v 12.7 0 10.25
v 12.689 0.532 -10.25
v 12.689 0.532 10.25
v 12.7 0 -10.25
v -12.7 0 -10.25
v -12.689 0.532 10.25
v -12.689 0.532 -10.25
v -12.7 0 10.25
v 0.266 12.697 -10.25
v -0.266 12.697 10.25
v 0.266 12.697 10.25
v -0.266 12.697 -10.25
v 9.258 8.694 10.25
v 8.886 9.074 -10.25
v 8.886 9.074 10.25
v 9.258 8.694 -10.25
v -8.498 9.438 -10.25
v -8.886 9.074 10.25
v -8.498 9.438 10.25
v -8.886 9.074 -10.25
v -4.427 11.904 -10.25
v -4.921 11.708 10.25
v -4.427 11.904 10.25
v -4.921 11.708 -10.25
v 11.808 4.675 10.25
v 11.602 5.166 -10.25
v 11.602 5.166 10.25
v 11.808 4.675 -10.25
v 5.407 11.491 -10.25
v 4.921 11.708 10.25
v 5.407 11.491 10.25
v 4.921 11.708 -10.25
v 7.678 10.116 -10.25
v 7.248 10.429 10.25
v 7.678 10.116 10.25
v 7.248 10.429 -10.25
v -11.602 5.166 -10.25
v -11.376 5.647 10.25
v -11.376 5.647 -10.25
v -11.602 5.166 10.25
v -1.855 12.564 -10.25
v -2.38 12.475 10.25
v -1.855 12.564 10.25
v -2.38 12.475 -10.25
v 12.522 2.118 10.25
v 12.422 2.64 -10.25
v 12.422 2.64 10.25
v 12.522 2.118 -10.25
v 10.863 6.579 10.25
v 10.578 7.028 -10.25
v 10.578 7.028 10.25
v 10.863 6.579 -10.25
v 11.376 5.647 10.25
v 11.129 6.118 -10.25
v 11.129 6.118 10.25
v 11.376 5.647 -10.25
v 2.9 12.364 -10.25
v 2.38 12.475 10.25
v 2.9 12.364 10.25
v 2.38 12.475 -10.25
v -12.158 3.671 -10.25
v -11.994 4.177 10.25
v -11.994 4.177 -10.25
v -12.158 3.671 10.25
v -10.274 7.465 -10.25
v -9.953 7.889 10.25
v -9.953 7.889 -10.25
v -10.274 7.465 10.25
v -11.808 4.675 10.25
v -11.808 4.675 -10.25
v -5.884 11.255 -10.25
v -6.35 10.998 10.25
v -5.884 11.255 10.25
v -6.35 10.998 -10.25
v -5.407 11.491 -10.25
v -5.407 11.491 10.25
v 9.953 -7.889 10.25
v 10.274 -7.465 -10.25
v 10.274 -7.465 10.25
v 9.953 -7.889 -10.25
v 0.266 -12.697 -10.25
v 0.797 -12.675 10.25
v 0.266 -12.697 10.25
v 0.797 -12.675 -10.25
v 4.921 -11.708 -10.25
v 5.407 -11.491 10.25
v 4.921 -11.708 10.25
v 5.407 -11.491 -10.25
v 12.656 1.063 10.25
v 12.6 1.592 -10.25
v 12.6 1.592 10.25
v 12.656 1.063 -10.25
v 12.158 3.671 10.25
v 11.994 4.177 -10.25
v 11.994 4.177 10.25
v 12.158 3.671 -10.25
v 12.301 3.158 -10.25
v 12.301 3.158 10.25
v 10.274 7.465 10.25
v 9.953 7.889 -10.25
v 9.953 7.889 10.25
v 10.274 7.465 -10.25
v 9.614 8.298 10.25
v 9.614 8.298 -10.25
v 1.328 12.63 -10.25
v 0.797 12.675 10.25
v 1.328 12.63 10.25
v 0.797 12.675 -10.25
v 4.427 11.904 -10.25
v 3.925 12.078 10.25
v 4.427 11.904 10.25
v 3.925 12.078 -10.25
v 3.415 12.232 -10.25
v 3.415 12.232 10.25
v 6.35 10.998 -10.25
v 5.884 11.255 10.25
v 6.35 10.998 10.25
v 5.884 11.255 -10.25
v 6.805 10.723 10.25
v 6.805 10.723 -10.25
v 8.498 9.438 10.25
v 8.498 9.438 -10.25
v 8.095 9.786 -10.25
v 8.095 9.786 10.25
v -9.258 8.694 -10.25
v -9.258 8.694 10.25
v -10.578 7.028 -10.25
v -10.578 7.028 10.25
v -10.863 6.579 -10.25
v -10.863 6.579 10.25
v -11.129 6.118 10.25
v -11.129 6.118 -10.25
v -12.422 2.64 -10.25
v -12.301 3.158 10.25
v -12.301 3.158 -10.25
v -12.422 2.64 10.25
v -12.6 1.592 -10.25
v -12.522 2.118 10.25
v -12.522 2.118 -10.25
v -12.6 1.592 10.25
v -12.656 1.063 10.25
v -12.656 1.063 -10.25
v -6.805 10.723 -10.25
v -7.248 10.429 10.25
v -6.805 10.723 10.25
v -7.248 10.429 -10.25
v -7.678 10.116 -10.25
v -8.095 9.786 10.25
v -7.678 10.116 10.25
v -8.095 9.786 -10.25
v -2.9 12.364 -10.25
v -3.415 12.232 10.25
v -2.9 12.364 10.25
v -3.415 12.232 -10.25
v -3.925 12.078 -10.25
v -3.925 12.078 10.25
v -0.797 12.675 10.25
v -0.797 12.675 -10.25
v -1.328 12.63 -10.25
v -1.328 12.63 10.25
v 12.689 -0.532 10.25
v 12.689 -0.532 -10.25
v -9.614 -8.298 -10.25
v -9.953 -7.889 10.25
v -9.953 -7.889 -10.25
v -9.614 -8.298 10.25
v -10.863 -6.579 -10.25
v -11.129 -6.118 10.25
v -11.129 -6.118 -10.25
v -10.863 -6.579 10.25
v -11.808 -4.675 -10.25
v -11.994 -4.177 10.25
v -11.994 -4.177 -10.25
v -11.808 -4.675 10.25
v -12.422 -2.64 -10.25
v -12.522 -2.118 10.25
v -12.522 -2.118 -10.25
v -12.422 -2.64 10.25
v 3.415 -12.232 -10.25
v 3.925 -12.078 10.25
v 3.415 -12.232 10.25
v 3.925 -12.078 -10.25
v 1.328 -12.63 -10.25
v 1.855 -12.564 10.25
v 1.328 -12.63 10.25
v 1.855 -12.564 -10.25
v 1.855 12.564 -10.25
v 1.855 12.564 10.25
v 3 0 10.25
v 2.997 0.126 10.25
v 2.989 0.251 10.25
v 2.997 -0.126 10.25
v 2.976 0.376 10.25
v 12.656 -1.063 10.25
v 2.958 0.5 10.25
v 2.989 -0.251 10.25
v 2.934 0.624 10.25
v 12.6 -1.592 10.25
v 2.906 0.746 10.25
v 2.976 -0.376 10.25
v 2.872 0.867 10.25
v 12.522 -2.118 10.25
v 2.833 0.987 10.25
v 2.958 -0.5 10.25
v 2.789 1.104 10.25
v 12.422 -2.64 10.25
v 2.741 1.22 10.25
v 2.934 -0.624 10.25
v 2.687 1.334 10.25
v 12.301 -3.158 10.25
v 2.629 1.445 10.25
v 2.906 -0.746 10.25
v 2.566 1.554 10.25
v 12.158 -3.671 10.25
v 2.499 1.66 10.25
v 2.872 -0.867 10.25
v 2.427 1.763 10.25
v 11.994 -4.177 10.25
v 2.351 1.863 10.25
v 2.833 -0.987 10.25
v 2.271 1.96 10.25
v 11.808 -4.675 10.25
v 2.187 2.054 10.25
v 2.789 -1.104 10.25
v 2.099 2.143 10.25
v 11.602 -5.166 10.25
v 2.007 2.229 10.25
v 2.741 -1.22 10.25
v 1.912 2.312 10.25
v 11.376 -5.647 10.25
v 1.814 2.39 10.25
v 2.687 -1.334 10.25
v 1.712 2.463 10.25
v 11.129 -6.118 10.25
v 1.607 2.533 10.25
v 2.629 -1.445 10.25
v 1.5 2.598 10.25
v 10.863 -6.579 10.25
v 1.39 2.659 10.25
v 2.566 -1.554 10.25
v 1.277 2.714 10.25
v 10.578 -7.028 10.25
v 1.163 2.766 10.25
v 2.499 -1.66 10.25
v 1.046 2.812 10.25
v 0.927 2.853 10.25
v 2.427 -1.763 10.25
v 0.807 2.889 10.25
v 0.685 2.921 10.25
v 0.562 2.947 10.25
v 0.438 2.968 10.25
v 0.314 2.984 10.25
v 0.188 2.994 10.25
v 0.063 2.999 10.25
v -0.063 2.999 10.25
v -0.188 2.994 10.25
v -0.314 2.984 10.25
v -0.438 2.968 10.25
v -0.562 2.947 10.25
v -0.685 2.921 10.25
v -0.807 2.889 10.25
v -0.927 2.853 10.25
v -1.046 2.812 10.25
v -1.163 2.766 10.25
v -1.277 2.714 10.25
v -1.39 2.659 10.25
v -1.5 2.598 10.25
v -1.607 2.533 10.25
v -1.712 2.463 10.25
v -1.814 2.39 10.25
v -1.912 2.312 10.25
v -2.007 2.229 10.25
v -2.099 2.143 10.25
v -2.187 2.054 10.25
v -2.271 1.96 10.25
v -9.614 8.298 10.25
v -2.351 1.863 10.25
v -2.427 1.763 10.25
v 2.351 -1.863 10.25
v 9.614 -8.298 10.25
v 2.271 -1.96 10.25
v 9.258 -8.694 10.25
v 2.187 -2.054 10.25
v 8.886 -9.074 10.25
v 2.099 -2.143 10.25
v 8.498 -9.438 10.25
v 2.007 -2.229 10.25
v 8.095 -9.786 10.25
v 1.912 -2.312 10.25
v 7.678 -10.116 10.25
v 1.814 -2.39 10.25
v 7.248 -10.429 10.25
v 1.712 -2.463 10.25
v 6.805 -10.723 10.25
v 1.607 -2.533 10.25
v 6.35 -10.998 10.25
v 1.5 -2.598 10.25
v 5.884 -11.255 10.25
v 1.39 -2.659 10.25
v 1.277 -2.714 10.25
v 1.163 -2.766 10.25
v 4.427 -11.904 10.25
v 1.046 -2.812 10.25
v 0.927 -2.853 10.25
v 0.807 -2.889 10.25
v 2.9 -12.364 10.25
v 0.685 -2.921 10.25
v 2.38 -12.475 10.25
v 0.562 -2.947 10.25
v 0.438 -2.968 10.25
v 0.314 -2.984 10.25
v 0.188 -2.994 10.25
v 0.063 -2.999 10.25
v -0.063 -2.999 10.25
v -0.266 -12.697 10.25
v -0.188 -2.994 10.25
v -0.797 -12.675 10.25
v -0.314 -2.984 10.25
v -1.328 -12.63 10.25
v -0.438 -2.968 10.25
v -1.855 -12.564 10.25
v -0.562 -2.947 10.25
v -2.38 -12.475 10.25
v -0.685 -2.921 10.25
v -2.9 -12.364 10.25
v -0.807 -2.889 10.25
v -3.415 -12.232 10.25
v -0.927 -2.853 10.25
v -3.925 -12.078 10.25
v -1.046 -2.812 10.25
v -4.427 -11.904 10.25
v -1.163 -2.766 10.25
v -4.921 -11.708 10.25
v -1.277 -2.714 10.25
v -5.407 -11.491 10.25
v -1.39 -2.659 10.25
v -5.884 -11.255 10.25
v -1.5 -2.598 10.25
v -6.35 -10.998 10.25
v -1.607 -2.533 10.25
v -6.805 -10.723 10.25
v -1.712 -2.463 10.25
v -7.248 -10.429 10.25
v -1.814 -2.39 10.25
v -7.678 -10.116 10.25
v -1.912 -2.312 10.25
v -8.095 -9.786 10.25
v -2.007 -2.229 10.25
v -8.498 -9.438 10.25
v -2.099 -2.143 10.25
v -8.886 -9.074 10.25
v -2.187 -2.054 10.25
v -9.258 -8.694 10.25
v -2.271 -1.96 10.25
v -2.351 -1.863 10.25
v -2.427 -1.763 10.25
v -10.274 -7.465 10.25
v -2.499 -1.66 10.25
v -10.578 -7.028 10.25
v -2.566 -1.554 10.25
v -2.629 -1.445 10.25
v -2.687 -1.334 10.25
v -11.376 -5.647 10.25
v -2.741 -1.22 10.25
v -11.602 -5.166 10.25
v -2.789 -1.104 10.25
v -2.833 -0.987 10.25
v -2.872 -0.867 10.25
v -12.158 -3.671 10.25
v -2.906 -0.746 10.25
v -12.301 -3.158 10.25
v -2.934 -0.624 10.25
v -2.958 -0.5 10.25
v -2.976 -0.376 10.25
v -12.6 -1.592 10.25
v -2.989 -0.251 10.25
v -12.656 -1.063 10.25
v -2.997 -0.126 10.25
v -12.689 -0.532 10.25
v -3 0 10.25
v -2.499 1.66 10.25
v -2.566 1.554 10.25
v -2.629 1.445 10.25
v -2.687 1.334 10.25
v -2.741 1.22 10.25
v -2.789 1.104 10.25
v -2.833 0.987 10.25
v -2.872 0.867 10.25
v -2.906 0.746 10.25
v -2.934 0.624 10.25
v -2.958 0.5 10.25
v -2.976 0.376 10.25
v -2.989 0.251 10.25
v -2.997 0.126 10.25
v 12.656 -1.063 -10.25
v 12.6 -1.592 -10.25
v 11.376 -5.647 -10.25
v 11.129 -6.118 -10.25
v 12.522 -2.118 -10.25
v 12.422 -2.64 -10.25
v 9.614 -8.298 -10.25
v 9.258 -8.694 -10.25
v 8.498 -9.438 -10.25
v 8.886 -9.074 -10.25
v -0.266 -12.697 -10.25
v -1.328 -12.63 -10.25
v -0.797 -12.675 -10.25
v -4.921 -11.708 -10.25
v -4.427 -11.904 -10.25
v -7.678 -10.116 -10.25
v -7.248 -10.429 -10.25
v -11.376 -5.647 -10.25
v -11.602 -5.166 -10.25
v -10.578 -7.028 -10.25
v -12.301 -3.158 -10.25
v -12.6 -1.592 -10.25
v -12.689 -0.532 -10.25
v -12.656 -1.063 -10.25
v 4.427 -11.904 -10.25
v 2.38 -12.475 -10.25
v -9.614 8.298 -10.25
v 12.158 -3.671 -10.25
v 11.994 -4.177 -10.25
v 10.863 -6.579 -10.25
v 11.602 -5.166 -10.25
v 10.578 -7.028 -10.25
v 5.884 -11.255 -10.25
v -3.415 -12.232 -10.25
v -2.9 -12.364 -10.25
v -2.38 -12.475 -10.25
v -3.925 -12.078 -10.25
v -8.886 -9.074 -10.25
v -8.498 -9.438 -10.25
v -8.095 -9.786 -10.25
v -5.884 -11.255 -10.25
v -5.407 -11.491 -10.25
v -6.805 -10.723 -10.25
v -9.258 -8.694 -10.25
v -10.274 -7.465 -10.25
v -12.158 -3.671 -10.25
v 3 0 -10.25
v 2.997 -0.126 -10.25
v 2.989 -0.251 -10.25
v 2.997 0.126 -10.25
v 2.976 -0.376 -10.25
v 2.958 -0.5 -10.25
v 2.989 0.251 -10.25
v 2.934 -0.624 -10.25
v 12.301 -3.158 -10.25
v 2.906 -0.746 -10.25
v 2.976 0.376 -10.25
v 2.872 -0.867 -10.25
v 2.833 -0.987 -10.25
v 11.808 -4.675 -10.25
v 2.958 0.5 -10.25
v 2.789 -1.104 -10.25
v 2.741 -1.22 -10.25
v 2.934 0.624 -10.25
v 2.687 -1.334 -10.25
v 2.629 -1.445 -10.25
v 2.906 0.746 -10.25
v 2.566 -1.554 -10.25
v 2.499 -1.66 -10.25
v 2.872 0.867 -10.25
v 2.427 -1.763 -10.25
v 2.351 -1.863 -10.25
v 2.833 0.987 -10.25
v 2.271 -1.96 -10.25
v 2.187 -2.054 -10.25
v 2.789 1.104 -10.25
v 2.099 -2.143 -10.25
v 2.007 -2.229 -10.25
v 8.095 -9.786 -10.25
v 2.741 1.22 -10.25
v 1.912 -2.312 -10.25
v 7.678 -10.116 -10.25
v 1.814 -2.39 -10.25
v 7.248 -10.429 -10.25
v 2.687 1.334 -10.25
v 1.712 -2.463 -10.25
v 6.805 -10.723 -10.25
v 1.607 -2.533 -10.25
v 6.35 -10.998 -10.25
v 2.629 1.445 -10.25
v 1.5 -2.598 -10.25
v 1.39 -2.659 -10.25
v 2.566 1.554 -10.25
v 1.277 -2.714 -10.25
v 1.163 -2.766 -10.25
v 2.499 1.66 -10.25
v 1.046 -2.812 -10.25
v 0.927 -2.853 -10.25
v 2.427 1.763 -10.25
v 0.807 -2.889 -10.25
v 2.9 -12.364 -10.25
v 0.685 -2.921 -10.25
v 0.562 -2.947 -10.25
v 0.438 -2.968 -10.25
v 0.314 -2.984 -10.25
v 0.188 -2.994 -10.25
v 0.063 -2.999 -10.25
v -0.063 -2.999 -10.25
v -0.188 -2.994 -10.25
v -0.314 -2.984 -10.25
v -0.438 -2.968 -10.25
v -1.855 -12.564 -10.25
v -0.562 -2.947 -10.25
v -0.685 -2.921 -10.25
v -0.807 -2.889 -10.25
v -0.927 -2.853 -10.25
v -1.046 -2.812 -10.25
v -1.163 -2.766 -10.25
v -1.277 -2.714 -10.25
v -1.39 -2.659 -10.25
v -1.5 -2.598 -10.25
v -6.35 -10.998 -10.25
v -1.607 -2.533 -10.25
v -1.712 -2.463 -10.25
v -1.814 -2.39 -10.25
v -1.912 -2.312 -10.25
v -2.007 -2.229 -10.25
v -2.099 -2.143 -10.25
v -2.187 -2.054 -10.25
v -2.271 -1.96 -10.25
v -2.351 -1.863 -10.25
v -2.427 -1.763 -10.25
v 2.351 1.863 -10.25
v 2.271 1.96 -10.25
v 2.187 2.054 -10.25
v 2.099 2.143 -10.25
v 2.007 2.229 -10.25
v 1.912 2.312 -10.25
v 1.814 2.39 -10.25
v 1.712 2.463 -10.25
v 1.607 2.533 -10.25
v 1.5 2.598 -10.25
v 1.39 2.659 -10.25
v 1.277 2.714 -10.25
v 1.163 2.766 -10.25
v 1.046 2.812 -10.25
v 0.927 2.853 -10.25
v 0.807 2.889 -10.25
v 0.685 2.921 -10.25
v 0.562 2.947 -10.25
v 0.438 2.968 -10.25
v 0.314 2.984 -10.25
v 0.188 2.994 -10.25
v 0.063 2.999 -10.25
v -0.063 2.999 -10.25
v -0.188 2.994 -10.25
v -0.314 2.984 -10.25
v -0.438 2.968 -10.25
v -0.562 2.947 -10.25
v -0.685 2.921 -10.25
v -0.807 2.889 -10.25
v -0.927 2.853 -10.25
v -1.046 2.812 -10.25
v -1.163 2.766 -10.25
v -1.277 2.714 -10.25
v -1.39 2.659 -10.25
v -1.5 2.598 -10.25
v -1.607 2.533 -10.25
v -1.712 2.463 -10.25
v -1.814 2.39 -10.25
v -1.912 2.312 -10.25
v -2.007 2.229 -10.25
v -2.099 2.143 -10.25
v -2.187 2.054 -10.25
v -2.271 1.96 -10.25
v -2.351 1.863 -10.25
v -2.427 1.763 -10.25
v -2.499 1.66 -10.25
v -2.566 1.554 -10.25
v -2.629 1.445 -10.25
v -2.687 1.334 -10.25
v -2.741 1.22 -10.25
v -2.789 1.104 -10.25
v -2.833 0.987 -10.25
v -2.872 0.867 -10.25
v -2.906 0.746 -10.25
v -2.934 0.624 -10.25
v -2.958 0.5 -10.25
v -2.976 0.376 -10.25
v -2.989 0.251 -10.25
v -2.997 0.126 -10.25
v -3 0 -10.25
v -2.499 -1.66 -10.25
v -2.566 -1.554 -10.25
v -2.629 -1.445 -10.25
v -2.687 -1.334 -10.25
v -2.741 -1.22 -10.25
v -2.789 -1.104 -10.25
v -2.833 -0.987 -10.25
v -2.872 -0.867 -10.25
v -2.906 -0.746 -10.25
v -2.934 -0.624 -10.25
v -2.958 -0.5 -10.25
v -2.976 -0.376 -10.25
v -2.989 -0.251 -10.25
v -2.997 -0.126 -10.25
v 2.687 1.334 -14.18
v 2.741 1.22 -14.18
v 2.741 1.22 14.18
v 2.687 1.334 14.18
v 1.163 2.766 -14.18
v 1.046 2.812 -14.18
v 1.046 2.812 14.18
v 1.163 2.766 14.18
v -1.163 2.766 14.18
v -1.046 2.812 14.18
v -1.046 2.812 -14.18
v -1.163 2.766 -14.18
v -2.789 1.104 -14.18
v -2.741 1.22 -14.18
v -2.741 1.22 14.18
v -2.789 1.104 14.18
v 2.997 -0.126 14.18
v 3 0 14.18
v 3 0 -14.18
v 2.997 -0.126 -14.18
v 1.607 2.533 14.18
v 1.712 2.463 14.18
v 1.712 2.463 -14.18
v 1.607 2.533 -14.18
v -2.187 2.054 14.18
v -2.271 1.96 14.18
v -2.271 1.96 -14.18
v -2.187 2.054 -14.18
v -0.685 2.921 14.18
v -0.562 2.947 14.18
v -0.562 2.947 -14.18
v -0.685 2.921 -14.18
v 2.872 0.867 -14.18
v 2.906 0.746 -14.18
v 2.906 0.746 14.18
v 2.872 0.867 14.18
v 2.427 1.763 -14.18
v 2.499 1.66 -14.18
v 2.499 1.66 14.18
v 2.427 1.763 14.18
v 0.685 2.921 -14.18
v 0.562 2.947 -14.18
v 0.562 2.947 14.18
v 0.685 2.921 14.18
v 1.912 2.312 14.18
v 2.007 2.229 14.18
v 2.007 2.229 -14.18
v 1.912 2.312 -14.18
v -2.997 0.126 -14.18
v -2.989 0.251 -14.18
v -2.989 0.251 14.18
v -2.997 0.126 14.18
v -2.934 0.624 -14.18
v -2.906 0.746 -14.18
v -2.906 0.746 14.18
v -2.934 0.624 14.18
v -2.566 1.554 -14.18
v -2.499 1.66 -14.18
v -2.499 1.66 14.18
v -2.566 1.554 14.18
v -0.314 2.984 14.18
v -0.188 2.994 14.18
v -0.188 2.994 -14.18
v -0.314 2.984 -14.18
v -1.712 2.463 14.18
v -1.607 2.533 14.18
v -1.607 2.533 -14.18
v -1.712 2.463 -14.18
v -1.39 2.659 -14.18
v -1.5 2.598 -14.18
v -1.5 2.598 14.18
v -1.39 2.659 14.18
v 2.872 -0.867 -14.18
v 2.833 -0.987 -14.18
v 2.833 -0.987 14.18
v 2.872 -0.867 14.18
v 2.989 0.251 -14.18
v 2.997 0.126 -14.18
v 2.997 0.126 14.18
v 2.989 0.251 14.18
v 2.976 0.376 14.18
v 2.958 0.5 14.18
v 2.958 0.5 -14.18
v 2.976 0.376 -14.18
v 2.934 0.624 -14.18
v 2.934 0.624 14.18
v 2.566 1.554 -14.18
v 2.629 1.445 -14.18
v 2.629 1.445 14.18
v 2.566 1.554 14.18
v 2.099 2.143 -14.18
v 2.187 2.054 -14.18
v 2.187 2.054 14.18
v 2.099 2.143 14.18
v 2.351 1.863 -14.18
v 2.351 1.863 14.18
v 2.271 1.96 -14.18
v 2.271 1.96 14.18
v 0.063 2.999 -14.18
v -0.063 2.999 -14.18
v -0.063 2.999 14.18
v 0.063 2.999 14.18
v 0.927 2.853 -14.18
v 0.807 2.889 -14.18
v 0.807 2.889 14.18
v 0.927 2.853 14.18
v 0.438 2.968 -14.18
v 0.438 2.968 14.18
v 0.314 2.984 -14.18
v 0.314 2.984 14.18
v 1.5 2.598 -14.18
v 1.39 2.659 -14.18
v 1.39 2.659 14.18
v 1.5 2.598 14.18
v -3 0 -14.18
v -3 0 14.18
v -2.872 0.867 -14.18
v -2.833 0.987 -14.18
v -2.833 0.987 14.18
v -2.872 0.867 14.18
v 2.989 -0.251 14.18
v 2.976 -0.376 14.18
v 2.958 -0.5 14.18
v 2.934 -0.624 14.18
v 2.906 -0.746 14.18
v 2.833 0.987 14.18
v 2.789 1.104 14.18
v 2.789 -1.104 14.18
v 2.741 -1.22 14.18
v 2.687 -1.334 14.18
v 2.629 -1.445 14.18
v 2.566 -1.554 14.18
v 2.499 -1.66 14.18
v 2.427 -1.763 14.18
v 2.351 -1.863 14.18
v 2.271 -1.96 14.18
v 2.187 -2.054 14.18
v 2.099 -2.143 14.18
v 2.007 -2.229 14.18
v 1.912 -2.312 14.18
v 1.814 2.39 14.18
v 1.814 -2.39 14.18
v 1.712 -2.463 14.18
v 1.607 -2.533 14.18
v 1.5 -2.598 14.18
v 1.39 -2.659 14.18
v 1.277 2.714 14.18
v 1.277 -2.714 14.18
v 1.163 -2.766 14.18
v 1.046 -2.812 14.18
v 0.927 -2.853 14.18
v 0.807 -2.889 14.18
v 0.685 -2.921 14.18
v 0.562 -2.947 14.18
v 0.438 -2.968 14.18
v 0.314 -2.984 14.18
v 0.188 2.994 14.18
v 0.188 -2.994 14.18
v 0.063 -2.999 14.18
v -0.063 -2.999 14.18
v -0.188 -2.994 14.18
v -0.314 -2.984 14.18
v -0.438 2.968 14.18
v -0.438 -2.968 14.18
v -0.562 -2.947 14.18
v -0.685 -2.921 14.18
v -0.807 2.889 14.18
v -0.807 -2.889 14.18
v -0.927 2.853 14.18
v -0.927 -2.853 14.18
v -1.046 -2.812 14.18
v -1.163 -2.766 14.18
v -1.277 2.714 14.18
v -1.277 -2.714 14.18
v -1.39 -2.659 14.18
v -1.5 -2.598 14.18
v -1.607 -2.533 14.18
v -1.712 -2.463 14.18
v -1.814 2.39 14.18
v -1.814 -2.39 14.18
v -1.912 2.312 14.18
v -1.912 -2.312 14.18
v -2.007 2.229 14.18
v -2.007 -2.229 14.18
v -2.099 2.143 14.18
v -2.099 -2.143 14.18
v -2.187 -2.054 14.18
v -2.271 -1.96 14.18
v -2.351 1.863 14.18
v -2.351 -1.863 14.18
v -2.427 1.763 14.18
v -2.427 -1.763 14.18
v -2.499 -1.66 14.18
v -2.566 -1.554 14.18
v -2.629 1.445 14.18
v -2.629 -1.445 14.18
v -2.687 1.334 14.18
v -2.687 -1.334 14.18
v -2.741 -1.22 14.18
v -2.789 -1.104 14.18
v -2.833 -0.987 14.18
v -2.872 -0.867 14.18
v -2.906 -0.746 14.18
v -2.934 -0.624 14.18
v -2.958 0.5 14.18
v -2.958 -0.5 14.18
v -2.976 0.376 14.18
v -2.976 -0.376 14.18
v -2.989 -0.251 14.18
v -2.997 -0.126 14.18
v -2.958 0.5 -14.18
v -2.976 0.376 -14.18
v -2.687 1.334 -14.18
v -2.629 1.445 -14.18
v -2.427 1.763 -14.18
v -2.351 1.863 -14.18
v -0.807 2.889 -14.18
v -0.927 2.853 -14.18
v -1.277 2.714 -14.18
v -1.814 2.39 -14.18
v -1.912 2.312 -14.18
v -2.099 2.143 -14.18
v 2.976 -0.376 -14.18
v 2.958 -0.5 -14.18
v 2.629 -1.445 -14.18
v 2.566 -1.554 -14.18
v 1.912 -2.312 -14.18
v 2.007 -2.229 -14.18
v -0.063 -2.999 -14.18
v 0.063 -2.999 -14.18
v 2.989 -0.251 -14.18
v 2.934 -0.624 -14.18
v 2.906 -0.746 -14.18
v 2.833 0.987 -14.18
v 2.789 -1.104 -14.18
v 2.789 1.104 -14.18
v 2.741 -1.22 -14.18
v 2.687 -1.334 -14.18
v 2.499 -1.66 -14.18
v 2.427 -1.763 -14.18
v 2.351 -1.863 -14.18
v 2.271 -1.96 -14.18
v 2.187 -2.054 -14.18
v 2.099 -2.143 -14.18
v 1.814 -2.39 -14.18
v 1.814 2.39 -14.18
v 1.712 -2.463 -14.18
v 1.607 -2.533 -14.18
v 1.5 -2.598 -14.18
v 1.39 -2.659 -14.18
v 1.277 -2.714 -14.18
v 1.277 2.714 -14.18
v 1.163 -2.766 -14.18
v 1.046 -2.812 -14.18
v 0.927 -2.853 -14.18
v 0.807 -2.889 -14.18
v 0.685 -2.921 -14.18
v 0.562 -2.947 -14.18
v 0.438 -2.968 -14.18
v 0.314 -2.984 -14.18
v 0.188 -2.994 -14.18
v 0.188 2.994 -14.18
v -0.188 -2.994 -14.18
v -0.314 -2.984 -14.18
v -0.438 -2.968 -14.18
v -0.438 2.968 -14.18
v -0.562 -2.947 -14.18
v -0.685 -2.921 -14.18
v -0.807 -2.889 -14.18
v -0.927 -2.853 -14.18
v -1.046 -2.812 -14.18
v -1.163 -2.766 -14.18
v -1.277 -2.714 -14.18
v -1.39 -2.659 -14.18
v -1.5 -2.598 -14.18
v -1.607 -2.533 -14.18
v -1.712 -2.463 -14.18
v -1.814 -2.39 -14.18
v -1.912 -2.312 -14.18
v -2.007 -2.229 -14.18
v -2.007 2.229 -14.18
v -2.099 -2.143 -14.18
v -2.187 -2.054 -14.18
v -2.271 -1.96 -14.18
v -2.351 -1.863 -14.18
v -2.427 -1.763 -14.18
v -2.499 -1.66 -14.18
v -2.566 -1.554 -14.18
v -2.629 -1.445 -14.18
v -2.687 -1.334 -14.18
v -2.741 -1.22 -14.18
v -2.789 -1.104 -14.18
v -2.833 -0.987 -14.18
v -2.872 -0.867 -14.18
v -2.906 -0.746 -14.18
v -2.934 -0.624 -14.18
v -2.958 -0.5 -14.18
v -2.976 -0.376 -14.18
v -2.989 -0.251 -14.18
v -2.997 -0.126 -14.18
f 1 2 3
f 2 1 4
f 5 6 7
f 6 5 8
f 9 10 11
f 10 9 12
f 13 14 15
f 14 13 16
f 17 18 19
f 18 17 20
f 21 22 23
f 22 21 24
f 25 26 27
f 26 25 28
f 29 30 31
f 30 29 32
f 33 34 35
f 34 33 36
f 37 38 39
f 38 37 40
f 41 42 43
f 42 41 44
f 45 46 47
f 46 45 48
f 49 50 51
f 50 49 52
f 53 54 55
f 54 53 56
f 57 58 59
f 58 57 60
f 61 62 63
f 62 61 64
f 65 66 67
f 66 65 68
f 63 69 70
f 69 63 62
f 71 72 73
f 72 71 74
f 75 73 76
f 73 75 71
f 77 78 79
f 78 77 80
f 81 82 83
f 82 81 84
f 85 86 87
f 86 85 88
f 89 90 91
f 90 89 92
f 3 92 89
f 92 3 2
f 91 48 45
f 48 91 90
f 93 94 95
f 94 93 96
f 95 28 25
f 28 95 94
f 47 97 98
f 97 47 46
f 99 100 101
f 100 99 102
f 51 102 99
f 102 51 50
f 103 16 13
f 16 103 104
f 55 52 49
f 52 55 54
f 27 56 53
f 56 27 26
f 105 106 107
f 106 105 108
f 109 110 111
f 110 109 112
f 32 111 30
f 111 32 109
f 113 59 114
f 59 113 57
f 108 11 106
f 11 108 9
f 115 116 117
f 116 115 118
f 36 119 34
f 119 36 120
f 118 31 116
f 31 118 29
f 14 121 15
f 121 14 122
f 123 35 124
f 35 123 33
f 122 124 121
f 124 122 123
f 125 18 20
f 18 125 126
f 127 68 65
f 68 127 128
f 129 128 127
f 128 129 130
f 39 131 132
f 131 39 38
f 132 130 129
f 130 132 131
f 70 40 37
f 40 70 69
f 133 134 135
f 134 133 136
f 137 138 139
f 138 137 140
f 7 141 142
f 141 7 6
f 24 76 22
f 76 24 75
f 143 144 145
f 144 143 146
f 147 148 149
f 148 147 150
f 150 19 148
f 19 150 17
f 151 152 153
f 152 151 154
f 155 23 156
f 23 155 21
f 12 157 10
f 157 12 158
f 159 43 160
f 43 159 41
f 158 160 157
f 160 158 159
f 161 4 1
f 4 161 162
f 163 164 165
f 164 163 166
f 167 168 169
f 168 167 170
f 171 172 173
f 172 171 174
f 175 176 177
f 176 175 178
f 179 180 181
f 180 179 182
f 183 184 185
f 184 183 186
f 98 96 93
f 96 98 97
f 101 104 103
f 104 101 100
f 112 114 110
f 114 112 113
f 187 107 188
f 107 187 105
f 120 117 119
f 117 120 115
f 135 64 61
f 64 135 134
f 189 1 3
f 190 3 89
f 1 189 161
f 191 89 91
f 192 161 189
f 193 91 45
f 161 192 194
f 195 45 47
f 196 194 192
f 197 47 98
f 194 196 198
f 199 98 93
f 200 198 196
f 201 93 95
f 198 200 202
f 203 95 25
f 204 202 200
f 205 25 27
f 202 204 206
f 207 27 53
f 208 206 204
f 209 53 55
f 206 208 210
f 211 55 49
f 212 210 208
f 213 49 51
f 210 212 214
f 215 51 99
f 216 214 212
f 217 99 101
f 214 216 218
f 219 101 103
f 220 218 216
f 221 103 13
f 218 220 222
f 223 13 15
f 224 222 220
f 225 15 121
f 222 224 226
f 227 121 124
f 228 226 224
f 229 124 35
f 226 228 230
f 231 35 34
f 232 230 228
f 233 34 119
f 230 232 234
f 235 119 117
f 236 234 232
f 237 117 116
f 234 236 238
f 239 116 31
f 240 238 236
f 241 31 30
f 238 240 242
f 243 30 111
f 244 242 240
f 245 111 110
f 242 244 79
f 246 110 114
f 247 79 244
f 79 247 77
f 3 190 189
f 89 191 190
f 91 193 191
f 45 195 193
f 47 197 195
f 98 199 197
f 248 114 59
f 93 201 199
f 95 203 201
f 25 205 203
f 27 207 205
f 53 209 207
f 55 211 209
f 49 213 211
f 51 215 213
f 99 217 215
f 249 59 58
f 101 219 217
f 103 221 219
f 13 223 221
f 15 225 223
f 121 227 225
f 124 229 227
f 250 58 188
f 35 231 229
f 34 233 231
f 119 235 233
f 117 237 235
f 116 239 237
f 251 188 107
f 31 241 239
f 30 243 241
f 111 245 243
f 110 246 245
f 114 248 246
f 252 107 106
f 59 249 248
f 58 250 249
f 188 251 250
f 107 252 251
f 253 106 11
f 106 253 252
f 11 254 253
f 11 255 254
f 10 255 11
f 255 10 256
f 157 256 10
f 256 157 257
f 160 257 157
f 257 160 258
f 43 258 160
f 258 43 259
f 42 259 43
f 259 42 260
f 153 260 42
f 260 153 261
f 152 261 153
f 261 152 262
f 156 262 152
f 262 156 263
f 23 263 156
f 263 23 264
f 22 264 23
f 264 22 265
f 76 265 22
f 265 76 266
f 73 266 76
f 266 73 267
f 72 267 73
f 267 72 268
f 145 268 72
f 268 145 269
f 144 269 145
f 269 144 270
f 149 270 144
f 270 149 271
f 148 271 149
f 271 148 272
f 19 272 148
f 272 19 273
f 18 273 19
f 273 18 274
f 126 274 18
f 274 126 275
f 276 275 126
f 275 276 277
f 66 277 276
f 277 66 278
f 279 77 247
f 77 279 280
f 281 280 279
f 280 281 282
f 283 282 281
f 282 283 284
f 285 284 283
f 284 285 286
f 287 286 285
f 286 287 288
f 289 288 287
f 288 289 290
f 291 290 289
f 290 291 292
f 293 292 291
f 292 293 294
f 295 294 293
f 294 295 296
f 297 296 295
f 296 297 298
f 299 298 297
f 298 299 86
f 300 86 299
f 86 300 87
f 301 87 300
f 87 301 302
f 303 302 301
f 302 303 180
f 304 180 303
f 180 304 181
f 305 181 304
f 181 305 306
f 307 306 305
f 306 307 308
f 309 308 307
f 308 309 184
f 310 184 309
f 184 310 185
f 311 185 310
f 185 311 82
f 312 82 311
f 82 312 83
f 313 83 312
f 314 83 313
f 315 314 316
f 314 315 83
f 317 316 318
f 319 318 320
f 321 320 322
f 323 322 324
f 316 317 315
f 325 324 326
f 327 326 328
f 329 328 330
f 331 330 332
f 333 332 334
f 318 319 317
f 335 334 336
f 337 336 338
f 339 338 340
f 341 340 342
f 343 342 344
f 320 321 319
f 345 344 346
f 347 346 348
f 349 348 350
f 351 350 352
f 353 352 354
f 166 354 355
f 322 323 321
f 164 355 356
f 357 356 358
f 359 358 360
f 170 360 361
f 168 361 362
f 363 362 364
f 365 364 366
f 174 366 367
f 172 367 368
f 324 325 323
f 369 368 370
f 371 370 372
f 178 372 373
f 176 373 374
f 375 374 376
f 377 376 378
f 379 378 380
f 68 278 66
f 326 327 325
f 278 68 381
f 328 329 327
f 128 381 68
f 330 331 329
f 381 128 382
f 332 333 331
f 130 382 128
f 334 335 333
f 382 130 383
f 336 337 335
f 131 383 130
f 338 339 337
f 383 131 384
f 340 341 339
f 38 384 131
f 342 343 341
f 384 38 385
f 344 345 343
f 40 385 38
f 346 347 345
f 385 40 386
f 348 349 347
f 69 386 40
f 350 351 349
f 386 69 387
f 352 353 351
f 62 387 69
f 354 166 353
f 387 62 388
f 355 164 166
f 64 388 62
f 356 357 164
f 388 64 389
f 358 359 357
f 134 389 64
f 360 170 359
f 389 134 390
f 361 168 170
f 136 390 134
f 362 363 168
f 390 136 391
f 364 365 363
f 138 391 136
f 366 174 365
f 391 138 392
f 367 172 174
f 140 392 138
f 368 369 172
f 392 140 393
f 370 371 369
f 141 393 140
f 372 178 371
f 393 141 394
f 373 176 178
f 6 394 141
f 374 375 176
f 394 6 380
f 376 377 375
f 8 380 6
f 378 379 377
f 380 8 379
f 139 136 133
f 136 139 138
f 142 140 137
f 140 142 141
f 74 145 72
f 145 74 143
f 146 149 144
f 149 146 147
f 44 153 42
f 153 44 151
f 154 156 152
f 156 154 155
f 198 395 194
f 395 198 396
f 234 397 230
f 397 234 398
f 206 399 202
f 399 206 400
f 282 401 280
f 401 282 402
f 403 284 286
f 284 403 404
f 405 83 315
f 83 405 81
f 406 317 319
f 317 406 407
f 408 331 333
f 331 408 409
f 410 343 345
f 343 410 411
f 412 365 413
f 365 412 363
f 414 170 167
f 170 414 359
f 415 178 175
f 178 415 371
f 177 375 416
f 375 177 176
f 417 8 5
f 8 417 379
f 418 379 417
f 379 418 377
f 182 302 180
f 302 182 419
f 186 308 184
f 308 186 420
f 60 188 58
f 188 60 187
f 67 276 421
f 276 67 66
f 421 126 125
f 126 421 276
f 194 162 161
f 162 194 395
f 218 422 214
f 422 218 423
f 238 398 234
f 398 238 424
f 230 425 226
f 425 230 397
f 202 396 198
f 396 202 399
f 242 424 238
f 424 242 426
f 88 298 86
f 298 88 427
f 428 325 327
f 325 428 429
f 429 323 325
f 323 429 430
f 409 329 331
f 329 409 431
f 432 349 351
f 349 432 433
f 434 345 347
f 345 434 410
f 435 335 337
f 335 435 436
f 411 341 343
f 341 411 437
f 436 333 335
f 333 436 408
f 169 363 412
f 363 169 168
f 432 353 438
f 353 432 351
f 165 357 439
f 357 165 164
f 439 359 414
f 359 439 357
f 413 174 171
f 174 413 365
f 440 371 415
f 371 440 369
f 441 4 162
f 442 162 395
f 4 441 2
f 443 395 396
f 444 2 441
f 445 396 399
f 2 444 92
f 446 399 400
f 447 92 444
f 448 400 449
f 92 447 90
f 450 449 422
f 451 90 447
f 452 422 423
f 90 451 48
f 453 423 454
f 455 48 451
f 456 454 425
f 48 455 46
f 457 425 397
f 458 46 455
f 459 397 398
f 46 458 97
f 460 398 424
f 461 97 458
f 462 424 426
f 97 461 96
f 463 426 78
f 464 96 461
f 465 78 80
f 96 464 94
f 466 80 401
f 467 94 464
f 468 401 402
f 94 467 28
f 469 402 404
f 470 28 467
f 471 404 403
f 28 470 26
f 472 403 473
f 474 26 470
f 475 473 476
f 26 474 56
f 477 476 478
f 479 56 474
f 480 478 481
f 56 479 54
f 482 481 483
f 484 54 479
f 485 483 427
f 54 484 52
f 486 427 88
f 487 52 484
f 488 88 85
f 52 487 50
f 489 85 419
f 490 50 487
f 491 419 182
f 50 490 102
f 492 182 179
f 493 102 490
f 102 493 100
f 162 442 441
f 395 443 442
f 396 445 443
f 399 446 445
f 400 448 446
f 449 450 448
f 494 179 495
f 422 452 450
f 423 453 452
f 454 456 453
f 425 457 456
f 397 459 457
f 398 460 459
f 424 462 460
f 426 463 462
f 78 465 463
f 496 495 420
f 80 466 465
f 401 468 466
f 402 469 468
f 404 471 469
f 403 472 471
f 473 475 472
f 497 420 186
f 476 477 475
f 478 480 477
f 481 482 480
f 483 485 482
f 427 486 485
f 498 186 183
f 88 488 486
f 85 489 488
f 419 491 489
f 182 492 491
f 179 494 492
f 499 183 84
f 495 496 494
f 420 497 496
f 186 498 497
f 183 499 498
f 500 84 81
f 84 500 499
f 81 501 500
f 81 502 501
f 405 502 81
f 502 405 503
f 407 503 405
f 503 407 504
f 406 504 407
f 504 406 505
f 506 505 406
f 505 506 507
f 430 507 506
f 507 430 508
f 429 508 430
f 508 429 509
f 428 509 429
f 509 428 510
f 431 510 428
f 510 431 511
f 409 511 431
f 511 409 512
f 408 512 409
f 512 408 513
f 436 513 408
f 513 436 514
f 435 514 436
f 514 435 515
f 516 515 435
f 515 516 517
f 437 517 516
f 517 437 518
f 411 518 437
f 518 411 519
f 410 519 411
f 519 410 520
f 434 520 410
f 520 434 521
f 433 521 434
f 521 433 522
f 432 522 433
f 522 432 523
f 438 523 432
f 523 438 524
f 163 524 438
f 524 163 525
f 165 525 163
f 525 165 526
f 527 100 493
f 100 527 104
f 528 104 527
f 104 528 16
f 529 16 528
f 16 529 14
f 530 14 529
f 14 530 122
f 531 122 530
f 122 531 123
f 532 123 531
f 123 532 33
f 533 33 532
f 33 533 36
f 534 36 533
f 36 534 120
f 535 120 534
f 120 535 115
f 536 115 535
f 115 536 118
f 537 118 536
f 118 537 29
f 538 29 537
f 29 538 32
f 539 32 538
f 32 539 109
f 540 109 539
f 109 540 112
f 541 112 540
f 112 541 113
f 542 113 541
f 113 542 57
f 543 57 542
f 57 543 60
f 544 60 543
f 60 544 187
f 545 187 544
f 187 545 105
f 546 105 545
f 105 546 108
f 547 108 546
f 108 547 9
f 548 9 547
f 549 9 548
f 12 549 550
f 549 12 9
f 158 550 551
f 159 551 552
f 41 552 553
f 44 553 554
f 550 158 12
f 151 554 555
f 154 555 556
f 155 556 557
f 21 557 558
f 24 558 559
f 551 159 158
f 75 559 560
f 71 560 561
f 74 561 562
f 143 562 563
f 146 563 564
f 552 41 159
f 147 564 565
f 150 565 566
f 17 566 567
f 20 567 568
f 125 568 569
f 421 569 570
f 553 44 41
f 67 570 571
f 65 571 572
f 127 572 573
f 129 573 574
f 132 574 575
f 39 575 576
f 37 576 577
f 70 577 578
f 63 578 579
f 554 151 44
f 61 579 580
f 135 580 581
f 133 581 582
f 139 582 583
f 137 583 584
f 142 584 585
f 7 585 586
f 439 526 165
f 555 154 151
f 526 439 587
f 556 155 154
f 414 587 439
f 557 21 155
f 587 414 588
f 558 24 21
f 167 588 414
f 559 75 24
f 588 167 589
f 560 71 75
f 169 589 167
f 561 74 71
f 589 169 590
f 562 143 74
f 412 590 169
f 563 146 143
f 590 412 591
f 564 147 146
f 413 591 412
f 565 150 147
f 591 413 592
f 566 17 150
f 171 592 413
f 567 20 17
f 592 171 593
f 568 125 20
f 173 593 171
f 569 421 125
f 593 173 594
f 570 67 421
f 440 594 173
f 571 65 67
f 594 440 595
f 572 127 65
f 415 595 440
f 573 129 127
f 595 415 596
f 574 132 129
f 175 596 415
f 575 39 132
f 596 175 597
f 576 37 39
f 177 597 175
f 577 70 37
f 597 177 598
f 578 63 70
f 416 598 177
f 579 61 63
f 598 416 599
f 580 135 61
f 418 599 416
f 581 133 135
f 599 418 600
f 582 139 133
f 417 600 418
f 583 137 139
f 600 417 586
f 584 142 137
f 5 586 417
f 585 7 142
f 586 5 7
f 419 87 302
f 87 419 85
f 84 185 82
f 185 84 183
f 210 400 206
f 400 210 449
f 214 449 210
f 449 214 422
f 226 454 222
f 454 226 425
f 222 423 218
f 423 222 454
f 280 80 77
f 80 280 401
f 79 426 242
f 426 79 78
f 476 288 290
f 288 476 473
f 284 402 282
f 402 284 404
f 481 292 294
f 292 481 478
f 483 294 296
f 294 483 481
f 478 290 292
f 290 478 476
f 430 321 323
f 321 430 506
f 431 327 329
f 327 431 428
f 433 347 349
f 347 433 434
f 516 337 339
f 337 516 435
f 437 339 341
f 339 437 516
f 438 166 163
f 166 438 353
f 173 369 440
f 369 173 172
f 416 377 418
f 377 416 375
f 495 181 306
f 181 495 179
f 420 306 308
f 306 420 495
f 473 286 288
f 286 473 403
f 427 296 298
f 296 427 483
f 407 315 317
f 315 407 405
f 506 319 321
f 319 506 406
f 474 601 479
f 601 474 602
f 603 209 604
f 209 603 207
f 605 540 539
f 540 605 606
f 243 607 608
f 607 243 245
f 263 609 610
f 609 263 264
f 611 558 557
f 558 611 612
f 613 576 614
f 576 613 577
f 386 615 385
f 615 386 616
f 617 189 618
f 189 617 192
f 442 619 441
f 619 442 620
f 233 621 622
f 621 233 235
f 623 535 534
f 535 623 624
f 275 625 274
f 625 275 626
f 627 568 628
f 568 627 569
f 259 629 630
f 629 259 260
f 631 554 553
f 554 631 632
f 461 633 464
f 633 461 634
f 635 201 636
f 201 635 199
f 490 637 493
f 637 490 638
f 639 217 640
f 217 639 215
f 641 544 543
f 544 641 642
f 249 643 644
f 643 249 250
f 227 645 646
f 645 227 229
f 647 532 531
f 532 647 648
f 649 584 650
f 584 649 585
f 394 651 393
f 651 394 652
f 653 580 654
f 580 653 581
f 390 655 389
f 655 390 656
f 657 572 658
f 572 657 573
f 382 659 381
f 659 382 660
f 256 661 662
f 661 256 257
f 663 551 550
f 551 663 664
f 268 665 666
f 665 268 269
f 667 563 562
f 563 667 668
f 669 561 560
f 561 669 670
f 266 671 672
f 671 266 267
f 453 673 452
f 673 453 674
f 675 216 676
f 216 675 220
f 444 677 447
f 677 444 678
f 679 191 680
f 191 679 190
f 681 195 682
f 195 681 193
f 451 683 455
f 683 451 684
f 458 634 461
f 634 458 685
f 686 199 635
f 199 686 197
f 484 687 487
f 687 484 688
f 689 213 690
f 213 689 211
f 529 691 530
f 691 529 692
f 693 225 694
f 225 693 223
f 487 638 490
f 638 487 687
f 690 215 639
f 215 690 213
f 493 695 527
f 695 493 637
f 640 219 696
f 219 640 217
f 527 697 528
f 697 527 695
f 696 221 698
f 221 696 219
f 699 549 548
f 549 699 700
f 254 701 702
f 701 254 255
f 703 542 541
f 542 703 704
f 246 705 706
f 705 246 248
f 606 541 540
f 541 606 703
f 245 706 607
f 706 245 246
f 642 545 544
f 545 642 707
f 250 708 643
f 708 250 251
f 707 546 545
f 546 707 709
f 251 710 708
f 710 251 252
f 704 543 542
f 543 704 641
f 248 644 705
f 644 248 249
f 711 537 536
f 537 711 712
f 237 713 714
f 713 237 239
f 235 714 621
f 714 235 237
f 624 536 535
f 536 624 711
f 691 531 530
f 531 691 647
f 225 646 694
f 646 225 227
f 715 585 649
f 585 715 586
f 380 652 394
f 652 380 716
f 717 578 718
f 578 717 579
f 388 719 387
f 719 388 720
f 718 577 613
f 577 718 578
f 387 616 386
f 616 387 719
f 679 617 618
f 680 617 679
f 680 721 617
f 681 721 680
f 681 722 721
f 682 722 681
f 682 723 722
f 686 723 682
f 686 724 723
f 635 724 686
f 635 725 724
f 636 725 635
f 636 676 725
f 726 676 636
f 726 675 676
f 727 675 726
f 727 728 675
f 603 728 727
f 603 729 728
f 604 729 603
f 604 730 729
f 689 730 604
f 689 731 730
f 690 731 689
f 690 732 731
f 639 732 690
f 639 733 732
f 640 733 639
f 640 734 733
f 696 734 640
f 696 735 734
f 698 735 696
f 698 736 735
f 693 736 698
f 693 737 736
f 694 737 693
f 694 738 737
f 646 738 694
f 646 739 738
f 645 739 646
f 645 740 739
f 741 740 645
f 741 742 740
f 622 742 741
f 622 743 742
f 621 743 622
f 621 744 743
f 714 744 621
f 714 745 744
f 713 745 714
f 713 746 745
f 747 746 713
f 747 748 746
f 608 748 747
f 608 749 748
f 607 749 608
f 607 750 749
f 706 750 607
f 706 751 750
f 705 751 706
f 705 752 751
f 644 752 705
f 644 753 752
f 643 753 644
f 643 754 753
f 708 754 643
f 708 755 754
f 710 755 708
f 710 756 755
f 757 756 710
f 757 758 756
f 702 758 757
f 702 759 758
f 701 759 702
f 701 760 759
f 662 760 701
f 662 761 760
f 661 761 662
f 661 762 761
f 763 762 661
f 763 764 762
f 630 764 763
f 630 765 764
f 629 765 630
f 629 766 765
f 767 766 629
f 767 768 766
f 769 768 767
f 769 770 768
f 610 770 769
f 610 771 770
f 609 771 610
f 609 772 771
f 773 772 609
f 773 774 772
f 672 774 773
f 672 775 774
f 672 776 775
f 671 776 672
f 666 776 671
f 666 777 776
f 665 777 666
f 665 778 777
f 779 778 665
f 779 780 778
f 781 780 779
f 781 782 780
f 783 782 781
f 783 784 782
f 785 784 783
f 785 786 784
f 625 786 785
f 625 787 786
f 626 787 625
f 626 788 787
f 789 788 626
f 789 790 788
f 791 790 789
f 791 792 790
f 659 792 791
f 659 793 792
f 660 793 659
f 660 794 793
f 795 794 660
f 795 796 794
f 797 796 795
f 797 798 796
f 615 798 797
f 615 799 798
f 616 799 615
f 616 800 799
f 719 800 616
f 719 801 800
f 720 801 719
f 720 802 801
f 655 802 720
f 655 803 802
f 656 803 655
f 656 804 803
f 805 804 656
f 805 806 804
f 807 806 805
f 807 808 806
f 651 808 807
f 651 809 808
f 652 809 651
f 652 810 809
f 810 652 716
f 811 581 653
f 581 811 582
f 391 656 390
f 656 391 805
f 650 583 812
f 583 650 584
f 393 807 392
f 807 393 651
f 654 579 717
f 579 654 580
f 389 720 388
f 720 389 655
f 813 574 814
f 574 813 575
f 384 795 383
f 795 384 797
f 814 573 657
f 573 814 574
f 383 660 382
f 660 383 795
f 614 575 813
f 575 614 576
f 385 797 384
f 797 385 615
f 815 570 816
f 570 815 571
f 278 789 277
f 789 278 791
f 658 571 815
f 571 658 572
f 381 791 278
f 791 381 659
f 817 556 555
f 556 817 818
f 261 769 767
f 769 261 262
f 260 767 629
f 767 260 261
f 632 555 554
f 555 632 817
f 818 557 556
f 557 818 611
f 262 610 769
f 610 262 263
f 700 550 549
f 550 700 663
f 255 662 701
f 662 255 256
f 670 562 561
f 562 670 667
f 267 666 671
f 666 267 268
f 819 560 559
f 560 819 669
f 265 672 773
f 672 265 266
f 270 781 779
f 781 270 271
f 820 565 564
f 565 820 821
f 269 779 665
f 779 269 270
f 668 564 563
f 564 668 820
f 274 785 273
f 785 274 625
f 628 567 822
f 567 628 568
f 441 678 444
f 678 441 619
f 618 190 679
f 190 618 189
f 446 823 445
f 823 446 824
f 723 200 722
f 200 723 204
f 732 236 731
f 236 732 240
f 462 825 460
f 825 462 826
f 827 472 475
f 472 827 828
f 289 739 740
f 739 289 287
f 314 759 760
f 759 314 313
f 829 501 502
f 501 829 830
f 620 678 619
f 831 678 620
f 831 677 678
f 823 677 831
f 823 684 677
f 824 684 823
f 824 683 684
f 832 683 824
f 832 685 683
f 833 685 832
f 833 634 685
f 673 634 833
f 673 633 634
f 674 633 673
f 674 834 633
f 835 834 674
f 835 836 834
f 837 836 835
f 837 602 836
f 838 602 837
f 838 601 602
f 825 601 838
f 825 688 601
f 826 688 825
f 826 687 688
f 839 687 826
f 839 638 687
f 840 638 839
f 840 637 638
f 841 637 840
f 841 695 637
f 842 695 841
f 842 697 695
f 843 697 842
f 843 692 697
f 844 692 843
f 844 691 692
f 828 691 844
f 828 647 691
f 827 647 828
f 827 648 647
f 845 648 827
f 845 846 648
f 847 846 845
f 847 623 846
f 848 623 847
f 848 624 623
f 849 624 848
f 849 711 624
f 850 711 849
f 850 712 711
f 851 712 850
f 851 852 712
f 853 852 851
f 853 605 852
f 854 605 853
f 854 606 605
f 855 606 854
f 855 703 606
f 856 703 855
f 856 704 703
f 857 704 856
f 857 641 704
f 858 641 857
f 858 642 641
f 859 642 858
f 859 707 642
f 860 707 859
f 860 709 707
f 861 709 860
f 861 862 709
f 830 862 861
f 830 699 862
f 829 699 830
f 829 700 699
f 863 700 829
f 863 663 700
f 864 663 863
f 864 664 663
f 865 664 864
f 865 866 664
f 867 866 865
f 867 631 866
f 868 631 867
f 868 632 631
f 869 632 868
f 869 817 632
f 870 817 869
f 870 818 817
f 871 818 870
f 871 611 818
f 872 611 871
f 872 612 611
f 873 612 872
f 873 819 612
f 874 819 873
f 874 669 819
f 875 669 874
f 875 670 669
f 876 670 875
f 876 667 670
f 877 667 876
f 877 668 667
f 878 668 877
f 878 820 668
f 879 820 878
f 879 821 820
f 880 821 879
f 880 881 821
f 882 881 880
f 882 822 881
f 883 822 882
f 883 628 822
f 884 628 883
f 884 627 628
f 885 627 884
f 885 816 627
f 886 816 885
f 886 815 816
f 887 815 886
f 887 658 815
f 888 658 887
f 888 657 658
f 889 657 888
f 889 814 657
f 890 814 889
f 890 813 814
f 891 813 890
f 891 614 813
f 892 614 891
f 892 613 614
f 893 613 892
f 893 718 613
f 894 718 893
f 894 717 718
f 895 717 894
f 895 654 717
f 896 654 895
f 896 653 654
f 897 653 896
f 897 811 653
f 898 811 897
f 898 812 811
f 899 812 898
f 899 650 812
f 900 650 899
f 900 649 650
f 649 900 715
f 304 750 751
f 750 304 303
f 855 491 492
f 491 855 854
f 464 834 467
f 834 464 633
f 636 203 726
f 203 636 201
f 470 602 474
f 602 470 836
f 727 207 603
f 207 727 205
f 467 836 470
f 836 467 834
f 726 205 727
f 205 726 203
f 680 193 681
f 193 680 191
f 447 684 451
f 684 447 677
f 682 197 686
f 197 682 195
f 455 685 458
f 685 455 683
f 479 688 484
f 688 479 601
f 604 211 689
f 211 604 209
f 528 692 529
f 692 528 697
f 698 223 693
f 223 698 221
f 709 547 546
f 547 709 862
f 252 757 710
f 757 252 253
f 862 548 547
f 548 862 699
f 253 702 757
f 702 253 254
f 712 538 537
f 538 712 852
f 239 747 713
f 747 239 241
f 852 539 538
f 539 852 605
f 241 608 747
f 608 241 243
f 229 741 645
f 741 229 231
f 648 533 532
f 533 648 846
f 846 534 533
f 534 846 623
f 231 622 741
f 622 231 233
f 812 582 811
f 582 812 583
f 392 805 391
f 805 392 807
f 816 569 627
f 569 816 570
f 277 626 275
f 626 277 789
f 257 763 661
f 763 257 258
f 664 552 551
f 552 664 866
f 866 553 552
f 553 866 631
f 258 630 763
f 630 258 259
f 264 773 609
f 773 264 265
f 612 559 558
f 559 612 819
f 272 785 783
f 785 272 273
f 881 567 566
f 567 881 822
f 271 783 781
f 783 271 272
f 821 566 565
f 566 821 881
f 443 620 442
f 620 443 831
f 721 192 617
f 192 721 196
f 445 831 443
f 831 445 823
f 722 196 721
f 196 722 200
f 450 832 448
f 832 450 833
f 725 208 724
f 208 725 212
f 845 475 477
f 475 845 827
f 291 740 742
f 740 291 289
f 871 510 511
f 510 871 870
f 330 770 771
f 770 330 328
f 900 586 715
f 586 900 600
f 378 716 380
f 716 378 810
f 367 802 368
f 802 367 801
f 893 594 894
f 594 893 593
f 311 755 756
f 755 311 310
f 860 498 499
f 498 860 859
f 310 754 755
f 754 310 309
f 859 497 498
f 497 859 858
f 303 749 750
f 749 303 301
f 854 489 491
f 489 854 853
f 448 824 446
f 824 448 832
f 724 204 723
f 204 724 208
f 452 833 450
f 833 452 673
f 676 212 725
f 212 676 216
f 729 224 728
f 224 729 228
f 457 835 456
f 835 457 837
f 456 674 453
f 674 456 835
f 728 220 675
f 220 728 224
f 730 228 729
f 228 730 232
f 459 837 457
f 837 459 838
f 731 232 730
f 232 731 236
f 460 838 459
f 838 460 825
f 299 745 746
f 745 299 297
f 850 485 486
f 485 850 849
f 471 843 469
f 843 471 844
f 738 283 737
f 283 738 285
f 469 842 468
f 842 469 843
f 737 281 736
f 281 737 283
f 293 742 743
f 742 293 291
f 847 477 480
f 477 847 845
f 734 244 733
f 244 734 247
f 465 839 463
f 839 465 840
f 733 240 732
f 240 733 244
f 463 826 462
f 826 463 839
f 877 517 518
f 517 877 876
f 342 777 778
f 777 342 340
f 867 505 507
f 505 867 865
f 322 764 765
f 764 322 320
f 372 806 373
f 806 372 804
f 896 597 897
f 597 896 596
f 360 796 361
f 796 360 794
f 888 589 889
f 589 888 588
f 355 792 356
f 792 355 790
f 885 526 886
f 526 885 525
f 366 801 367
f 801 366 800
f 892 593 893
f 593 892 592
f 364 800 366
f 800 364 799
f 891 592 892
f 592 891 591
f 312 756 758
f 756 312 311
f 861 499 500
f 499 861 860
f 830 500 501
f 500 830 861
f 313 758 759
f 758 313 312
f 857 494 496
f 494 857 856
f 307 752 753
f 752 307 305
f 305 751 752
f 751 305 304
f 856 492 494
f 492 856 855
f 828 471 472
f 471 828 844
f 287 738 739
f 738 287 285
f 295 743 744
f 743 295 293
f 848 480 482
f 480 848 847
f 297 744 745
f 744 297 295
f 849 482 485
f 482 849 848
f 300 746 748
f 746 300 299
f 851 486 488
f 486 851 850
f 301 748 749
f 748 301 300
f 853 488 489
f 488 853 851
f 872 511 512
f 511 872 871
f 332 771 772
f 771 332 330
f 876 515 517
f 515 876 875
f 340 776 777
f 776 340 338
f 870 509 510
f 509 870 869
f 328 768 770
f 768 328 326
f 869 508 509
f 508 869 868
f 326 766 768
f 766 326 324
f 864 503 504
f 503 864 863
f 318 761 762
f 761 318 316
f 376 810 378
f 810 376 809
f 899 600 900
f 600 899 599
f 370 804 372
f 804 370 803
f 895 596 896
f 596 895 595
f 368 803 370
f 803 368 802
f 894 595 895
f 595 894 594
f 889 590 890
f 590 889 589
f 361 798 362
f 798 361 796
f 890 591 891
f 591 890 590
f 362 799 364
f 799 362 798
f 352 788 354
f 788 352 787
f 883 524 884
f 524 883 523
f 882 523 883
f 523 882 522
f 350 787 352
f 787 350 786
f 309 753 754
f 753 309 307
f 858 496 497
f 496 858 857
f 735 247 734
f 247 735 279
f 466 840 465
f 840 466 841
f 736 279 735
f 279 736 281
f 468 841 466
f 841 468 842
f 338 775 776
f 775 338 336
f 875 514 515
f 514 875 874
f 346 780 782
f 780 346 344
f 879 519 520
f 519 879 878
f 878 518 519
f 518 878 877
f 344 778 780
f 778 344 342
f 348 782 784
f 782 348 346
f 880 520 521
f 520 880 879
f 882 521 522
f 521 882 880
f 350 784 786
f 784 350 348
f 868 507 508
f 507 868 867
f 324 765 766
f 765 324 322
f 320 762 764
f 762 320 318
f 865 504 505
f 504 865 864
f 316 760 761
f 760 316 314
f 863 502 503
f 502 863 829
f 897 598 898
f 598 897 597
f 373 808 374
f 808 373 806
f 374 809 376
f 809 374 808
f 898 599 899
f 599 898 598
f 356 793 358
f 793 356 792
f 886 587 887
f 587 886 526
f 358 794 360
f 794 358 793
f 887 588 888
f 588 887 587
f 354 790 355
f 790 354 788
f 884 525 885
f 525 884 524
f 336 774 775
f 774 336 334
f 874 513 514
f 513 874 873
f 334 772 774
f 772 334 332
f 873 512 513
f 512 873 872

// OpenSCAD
$fn=150;
hd=20.5;
dd=25.4;

cylinder(h=hd,d=dd,center=true);
cylinder(h=23.36+7-2,d=6,center=true);
